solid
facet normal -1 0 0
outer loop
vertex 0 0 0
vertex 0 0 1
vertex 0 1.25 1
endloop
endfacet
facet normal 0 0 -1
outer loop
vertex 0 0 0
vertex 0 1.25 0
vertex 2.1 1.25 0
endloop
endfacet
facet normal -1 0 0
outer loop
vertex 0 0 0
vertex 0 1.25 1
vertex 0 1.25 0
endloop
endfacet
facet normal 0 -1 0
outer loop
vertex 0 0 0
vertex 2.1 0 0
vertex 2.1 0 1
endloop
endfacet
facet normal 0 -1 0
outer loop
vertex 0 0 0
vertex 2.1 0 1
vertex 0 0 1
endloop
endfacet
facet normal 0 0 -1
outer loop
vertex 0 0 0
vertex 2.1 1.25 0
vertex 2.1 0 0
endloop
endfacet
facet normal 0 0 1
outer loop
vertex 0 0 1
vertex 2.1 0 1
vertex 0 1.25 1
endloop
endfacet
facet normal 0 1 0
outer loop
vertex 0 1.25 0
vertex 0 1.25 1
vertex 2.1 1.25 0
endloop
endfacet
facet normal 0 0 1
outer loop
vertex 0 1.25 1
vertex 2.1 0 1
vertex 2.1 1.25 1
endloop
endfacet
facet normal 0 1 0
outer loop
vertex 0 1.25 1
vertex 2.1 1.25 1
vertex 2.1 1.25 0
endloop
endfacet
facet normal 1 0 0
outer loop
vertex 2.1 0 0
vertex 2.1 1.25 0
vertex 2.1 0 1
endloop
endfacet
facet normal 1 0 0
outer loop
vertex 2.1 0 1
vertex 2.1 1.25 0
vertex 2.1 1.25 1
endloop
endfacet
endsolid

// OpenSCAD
/* Warning, this is a very basic generator with a lot of approximation 
input data : [SC70, R5X, 2.10x1.25mm, 6, , C, C04-00151C]
generated by com.zoubworld.electronics.cad.model3d.Basic
Date : Sun Feb 15 10:50:48 CET 2026
*/

//body
color("black")
translate([0,0,0])
cube([2.1,1.25,1.0], center=false);
